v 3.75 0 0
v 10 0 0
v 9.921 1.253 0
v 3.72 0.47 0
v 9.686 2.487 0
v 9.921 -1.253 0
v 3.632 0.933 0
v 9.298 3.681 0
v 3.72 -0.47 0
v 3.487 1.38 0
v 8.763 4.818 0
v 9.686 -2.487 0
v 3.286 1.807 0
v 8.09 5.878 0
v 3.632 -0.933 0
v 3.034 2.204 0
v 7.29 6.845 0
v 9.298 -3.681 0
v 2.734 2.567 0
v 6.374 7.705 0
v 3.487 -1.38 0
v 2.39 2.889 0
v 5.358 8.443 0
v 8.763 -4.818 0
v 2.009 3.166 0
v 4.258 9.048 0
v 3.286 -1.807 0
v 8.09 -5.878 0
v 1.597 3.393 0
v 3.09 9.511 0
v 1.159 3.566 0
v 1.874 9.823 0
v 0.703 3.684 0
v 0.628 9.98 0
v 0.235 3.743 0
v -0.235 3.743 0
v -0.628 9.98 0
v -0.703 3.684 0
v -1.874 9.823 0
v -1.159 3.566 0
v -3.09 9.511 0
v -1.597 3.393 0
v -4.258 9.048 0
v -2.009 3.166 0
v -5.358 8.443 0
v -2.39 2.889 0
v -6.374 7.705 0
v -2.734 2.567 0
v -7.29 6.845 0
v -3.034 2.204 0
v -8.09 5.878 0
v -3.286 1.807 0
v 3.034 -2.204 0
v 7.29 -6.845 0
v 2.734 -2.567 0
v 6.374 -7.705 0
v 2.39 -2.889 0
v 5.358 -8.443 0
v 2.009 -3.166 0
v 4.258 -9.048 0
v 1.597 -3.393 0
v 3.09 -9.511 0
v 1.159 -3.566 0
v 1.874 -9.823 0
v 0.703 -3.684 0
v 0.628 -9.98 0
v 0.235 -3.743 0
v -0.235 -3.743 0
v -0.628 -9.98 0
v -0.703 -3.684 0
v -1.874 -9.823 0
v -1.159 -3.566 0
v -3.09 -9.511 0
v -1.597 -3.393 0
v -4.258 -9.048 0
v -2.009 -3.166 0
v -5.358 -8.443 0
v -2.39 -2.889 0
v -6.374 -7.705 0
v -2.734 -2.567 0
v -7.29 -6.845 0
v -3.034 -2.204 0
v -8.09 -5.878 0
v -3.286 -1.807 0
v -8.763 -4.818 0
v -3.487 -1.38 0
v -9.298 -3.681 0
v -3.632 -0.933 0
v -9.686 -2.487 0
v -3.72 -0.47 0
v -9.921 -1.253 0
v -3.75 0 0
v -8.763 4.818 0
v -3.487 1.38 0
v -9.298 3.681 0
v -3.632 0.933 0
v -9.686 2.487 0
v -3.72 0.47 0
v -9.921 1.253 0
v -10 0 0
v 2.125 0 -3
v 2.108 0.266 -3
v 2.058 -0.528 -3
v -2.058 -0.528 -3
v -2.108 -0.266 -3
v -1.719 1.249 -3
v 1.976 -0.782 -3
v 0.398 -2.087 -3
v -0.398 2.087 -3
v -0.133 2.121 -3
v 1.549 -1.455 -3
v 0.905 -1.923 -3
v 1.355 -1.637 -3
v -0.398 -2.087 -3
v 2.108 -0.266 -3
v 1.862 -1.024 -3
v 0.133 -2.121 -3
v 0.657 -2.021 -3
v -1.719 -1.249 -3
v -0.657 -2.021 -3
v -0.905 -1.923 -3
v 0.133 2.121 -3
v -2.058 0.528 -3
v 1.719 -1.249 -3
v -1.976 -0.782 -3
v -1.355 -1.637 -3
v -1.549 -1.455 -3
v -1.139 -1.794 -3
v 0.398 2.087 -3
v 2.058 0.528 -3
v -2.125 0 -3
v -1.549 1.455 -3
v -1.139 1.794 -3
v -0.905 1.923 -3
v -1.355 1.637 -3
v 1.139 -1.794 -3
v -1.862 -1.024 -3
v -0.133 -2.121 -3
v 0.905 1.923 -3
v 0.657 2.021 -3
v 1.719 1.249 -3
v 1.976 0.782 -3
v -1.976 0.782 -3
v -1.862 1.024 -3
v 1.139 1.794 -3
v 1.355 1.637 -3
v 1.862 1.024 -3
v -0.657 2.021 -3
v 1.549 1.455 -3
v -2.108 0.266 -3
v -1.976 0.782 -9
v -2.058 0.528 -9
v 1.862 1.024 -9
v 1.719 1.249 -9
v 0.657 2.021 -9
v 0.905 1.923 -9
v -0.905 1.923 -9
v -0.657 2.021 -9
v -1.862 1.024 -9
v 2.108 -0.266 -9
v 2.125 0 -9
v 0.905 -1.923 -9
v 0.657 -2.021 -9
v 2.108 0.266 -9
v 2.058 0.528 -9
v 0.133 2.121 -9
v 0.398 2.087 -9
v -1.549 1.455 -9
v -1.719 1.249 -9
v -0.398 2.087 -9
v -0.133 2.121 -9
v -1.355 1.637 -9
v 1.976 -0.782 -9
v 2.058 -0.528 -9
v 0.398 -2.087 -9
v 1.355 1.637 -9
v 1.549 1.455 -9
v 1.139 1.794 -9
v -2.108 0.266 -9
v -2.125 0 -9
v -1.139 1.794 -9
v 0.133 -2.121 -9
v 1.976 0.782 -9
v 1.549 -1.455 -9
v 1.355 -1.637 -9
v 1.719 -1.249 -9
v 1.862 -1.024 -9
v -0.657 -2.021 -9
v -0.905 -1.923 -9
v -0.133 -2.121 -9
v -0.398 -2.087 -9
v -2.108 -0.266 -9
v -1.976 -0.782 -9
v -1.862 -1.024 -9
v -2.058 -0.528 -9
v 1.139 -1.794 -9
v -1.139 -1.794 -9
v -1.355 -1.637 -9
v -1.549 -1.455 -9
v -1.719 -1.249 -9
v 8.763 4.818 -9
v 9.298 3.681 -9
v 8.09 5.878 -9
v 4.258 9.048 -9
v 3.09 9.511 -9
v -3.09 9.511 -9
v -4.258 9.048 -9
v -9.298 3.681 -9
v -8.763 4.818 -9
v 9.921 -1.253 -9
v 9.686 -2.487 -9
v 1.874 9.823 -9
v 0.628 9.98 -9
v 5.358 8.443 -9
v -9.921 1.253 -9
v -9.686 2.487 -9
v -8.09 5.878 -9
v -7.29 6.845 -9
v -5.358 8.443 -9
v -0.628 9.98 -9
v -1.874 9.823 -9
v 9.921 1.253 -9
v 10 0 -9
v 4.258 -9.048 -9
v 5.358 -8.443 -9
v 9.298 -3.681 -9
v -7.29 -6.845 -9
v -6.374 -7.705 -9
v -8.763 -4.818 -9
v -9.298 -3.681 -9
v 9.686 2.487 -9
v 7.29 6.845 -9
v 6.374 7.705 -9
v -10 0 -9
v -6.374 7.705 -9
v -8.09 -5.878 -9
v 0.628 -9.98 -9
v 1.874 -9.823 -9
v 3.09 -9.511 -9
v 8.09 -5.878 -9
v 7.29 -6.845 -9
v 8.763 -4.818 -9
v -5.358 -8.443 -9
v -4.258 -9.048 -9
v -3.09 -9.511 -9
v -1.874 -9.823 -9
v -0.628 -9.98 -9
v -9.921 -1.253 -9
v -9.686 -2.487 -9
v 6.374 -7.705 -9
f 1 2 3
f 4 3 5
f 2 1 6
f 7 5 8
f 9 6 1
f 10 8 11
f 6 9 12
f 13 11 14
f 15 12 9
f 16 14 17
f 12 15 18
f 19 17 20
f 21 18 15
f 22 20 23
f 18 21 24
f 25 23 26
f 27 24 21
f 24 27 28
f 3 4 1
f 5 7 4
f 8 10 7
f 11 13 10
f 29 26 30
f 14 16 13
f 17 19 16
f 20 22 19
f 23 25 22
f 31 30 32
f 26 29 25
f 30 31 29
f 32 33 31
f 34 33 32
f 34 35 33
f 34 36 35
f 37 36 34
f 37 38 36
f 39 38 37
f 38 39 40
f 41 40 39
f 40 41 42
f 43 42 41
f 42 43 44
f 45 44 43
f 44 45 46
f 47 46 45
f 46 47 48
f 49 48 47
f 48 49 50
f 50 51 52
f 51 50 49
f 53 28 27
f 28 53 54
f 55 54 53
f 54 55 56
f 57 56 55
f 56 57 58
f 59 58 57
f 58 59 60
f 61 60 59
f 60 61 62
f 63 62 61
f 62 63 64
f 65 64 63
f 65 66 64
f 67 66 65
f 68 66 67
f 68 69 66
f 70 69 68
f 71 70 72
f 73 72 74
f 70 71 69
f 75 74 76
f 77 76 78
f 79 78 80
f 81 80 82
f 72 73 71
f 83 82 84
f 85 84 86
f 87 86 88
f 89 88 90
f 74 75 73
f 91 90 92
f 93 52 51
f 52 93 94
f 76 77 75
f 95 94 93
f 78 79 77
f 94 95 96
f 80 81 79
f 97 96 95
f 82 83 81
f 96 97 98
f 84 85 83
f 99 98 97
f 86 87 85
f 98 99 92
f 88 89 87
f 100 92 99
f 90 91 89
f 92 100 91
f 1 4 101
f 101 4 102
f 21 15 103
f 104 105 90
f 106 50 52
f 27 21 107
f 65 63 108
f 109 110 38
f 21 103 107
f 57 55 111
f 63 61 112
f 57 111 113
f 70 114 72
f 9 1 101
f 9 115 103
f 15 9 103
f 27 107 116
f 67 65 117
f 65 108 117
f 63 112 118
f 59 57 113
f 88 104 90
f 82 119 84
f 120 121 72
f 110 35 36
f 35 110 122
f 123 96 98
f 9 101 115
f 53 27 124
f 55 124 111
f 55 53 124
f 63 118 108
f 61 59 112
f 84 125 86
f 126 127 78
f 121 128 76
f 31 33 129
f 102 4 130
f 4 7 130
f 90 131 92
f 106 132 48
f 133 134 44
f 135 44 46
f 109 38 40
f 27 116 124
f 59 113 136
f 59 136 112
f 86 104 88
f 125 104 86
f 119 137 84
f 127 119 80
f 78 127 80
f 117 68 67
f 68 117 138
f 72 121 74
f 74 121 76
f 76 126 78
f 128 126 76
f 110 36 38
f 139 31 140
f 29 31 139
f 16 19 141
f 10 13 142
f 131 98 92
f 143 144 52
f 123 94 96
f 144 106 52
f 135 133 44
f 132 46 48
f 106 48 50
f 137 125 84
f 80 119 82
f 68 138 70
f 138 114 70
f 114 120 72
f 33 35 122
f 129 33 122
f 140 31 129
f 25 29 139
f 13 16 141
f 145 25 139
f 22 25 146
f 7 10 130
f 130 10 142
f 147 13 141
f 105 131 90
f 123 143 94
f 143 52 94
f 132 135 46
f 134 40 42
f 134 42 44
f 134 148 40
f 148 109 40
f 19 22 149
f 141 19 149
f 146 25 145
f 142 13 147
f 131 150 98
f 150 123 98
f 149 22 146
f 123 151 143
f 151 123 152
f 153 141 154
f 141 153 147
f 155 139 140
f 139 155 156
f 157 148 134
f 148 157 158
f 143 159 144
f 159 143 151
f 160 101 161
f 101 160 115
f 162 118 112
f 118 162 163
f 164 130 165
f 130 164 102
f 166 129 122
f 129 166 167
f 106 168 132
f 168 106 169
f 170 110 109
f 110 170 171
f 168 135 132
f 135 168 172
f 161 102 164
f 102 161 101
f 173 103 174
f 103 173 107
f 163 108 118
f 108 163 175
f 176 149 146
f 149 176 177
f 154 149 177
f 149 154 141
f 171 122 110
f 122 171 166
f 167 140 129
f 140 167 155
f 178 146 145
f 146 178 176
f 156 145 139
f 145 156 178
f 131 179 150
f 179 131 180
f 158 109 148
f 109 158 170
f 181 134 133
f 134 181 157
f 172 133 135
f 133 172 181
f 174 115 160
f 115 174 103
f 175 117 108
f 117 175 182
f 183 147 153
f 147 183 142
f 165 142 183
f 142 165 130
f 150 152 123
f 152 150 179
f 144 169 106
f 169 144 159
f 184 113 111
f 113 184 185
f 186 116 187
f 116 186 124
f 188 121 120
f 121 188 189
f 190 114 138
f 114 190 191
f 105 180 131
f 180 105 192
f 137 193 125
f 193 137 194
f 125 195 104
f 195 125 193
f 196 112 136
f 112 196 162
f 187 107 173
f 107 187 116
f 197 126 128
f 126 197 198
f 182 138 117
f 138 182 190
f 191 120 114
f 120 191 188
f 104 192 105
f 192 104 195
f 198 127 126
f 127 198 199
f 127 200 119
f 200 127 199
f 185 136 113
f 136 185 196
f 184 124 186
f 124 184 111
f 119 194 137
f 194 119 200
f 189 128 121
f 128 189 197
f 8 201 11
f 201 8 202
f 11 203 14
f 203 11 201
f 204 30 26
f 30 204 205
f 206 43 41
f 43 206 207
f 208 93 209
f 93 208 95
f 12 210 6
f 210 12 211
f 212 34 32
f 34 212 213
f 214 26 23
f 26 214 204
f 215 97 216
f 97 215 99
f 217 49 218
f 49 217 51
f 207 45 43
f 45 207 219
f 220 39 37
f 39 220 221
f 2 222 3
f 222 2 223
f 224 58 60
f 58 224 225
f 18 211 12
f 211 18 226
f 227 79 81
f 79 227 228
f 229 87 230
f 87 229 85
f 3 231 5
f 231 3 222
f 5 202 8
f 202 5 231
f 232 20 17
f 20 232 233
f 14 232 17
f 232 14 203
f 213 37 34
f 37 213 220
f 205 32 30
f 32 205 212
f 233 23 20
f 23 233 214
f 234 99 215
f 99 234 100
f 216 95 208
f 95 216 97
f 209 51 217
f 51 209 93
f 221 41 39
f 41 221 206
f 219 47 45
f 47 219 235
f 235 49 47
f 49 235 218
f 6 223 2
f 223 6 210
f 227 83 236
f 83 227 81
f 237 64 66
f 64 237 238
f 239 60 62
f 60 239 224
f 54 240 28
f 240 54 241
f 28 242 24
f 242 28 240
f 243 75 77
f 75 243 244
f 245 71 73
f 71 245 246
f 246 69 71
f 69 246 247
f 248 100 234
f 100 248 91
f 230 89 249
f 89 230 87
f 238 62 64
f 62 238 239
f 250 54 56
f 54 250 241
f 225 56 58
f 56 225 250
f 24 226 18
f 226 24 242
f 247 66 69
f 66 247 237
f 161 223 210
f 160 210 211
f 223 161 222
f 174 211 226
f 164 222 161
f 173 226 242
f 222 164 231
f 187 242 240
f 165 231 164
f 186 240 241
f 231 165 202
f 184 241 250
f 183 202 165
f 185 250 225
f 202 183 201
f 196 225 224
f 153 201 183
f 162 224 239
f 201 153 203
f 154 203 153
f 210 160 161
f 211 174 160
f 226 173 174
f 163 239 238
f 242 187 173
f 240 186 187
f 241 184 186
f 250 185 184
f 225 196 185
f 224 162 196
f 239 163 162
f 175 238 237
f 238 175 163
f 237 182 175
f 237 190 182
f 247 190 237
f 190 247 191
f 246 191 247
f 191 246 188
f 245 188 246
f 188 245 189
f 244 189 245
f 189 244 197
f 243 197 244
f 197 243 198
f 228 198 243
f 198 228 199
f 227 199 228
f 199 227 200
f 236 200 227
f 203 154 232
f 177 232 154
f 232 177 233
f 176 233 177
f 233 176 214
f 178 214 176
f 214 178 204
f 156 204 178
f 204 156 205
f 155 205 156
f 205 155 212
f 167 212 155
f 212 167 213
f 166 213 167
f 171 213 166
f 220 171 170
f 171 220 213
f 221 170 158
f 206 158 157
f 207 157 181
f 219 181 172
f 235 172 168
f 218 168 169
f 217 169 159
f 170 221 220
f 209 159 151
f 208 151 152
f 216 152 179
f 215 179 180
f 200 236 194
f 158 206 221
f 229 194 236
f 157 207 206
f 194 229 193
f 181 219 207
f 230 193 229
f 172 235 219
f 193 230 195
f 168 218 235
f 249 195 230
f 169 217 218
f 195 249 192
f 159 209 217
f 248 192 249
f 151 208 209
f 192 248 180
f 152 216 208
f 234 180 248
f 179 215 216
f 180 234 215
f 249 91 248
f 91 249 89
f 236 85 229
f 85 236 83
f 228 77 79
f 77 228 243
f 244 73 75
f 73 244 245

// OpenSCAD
$fn = 50;


difference() {
	union() {
		translate(v = [0, 0, -9.0000000000]) {
			cylinder(h = 9, r = 10.0000000000);
		}
	}
	union() {
		translate(v = [0, 0, 0]) {
			rotate(a = [0, 0, 0]) {
				difference() {
					union() {
						translate(v = [0, 0, -12.0000000000]) {
							cylinder(h = 12, r = 2.0000000000);
						}
						translate(v = [0, 0, -3]) {
							cylinder(h = 3, r1 = 2.1250000000, r2 = 3.7500000000);
						}
						translate(v = [0, 0, -12.0000000000]) {
							cylinder(h = 12, r = 2.1250000000);
						}
						translate(v = [0, 0, -12.0000000000]) {
							cylinder(h = 12, r = 2.0000000000);
						}
					}
					union();
				}
			}
		}
	}
}
